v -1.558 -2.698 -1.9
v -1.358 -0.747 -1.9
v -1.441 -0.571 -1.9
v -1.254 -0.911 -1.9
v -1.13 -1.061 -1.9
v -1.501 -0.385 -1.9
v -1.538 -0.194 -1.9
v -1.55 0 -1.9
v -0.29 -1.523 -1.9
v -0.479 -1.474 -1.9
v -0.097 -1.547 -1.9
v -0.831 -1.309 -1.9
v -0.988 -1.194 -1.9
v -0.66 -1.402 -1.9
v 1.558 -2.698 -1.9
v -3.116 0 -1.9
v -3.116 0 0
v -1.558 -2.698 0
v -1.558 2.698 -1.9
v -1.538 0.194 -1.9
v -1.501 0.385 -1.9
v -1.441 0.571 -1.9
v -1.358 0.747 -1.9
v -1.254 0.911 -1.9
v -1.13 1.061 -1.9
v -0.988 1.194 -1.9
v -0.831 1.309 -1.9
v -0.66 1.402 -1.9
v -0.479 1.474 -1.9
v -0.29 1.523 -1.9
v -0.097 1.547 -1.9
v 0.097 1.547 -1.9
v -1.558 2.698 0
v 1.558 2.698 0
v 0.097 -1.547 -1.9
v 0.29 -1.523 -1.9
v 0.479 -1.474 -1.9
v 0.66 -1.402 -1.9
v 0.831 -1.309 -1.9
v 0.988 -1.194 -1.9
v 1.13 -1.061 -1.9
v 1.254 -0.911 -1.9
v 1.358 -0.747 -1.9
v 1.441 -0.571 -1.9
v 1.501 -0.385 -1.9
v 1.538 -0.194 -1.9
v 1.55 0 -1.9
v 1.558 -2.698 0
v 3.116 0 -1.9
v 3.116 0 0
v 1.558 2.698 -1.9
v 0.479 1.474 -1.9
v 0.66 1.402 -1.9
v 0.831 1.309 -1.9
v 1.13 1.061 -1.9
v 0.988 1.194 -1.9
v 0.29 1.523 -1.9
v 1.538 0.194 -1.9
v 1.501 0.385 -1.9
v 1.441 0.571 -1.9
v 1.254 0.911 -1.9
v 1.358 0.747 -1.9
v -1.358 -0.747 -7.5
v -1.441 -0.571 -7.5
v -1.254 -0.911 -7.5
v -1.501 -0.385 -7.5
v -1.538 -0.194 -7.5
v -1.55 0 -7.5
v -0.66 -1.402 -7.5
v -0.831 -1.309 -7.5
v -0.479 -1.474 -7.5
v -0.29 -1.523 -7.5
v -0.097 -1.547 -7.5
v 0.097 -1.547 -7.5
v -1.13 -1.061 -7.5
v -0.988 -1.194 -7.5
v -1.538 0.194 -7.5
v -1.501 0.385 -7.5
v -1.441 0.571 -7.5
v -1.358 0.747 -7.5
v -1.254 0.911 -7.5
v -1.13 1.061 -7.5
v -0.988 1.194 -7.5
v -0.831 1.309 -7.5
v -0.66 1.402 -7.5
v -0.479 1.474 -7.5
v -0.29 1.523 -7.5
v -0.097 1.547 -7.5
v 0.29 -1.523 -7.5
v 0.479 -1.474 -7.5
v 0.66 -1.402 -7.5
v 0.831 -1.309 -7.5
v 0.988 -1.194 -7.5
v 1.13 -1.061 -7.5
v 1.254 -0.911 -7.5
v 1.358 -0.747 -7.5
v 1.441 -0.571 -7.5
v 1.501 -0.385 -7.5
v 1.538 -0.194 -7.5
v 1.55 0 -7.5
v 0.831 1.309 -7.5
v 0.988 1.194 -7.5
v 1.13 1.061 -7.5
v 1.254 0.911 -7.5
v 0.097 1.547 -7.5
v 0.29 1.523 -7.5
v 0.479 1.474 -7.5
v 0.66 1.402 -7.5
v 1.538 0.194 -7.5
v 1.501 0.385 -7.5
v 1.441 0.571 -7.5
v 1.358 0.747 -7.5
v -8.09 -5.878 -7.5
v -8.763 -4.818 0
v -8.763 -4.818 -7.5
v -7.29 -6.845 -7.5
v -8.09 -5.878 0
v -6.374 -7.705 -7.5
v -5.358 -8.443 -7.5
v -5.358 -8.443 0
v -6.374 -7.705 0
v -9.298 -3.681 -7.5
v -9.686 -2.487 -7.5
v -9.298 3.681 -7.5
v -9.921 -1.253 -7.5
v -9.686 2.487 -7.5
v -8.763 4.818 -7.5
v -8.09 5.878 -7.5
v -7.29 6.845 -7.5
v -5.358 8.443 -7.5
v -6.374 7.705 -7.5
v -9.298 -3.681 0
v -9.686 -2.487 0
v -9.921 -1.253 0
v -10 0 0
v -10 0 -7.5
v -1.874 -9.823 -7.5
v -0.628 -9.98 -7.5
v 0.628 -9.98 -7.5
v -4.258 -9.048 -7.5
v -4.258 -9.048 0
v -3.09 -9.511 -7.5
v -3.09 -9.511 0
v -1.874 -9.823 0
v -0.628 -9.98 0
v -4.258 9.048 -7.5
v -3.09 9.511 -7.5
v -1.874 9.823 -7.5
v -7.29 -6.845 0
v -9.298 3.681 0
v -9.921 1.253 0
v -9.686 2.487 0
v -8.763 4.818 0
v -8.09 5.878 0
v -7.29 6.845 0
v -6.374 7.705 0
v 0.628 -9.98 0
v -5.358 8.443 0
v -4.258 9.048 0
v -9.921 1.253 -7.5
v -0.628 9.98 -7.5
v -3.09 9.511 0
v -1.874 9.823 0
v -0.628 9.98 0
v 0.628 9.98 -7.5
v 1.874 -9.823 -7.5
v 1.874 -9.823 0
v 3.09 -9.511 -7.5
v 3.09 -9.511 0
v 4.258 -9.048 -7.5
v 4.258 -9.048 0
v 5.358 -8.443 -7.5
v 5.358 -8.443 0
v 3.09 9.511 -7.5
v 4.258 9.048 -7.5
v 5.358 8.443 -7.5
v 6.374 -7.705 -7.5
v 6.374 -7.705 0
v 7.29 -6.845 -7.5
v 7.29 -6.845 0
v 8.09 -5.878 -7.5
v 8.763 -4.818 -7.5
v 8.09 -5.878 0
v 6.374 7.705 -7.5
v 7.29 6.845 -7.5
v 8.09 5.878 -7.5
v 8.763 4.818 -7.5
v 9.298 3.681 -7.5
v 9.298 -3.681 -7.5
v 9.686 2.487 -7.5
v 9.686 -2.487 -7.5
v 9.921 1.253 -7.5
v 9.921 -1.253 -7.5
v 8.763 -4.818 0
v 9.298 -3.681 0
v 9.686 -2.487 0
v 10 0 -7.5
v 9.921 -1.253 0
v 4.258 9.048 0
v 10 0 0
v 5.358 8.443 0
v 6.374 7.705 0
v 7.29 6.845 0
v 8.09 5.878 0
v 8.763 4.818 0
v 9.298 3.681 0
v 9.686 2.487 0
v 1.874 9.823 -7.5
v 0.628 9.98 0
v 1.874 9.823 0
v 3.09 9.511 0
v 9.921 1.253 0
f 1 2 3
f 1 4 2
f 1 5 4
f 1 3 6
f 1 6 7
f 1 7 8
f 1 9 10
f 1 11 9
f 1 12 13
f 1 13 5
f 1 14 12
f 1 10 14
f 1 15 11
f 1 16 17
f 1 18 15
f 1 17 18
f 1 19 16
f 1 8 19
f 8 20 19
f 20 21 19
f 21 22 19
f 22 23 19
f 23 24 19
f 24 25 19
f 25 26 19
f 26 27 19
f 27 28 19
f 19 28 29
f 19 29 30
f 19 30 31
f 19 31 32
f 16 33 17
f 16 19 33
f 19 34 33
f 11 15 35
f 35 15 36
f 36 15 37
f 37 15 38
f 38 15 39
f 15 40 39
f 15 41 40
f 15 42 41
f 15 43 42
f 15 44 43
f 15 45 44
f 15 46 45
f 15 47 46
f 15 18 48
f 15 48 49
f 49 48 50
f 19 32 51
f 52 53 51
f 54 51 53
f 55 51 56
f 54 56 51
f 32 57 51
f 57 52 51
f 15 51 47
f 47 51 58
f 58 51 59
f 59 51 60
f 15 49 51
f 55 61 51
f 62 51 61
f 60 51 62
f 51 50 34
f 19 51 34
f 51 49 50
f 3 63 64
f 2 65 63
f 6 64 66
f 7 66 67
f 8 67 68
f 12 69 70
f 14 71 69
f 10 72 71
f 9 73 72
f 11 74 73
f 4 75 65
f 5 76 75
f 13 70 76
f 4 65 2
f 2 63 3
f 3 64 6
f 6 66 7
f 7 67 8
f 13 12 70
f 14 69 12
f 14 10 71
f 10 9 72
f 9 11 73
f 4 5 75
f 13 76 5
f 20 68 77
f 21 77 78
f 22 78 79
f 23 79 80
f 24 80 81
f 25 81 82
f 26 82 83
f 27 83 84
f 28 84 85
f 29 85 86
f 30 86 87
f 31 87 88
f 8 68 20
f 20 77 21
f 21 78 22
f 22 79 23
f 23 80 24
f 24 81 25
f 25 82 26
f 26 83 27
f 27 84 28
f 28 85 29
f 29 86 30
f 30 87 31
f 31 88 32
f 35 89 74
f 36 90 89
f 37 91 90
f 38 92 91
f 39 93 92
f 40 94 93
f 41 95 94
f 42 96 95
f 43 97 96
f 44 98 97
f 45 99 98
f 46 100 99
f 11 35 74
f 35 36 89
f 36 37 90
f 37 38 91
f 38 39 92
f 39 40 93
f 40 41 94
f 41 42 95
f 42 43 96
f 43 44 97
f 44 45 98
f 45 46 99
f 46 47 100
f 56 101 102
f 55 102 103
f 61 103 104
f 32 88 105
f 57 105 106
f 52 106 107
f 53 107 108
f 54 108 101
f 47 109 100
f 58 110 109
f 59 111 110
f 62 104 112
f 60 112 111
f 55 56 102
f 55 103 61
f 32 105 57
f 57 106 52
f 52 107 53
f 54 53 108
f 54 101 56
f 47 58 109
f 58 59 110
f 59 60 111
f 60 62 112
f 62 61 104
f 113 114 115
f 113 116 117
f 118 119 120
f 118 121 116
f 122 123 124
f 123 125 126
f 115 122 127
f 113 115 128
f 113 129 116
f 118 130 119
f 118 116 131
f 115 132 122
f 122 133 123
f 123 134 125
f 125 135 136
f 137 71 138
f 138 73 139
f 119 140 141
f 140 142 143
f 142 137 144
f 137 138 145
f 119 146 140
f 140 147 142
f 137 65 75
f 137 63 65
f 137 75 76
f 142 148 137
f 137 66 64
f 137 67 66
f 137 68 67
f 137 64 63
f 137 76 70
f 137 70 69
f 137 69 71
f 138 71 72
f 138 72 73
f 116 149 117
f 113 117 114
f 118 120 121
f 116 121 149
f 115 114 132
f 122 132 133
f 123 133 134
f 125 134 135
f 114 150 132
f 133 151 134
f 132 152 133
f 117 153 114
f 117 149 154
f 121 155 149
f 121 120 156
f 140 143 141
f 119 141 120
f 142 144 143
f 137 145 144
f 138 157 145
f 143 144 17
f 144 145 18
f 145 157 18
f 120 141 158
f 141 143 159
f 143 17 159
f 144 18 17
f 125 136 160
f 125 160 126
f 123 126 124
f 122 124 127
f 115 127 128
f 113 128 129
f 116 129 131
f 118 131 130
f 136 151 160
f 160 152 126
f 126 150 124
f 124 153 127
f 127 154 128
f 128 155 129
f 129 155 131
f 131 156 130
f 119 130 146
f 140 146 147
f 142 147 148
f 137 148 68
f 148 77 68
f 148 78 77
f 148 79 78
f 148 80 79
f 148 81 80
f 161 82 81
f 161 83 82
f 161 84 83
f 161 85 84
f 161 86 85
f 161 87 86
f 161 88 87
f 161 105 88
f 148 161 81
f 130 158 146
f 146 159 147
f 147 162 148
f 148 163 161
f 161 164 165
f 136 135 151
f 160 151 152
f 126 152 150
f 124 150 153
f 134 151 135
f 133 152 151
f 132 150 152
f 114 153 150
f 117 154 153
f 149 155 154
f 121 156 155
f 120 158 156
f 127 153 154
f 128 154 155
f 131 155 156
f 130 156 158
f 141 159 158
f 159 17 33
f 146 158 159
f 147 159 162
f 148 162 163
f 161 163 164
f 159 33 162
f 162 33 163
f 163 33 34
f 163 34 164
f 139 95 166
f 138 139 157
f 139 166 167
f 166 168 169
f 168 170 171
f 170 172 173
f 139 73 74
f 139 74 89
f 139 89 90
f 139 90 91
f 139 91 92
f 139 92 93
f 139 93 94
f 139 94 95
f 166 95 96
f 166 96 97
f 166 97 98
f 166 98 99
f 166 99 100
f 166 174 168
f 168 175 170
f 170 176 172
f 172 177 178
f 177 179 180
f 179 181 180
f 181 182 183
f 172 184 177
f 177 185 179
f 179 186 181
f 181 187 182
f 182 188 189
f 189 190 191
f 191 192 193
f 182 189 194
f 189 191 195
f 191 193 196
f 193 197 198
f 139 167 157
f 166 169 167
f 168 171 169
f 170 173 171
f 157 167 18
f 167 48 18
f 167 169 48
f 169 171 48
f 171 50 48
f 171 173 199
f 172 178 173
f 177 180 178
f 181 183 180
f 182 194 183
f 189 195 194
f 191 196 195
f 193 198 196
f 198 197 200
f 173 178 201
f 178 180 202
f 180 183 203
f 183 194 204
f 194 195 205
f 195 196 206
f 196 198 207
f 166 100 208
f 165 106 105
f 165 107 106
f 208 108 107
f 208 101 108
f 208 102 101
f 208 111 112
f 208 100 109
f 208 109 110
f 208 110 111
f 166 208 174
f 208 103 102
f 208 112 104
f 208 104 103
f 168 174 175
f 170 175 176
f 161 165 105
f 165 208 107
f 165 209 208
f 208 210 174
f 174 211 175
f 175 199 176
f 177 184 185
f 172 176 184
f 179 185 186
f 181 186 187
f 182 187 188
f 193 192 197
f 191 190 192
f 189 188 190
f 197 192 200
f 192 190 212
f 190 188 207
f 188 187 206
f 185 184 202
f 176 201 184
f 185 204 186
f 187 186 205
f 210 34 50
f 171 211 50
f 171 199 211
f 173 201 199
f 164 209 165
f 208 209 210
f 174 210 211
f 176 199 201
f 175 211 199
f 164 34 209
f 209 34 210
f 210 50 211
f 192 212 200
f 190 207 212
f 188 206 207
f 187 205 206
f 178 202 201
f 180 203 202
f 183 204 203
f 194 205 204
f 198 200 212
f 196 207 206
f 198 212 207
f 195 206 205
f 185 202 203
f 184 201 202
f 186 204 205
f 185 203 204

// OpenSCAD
$fn = 50;

difference() {
	union() {
		translate(v = [0, 0, -7.5]) {
			cylinder(h = 7.5, r = 10.0);
		}
	}
	union() {
		translate(v = [0, 0, 0]) {
			rotate(a = [0, 0, 0]) {
				difference() {
					union() {
						translate(v = [0, 0, -1.9]) {
							linear_extrude(height = 1.9) {
								polygon(points = [[3.1158, 0.0], [1.5579000000000005, 2.698361953111554], [-1.5578999999999994, 2.6983619531115544], [-3.1158, 3.815754496783323e-16], [-1.5579000000000014, -2.6983619531115535], [1.557899999999998, -2.6983619531115552]]);
							}
						}
					}
					union();
				}
			}
		}
		#translate(v = [0, 0, -100.0]) {
			cylinder(h = 200, r = 1.55);
		}
	}
}
